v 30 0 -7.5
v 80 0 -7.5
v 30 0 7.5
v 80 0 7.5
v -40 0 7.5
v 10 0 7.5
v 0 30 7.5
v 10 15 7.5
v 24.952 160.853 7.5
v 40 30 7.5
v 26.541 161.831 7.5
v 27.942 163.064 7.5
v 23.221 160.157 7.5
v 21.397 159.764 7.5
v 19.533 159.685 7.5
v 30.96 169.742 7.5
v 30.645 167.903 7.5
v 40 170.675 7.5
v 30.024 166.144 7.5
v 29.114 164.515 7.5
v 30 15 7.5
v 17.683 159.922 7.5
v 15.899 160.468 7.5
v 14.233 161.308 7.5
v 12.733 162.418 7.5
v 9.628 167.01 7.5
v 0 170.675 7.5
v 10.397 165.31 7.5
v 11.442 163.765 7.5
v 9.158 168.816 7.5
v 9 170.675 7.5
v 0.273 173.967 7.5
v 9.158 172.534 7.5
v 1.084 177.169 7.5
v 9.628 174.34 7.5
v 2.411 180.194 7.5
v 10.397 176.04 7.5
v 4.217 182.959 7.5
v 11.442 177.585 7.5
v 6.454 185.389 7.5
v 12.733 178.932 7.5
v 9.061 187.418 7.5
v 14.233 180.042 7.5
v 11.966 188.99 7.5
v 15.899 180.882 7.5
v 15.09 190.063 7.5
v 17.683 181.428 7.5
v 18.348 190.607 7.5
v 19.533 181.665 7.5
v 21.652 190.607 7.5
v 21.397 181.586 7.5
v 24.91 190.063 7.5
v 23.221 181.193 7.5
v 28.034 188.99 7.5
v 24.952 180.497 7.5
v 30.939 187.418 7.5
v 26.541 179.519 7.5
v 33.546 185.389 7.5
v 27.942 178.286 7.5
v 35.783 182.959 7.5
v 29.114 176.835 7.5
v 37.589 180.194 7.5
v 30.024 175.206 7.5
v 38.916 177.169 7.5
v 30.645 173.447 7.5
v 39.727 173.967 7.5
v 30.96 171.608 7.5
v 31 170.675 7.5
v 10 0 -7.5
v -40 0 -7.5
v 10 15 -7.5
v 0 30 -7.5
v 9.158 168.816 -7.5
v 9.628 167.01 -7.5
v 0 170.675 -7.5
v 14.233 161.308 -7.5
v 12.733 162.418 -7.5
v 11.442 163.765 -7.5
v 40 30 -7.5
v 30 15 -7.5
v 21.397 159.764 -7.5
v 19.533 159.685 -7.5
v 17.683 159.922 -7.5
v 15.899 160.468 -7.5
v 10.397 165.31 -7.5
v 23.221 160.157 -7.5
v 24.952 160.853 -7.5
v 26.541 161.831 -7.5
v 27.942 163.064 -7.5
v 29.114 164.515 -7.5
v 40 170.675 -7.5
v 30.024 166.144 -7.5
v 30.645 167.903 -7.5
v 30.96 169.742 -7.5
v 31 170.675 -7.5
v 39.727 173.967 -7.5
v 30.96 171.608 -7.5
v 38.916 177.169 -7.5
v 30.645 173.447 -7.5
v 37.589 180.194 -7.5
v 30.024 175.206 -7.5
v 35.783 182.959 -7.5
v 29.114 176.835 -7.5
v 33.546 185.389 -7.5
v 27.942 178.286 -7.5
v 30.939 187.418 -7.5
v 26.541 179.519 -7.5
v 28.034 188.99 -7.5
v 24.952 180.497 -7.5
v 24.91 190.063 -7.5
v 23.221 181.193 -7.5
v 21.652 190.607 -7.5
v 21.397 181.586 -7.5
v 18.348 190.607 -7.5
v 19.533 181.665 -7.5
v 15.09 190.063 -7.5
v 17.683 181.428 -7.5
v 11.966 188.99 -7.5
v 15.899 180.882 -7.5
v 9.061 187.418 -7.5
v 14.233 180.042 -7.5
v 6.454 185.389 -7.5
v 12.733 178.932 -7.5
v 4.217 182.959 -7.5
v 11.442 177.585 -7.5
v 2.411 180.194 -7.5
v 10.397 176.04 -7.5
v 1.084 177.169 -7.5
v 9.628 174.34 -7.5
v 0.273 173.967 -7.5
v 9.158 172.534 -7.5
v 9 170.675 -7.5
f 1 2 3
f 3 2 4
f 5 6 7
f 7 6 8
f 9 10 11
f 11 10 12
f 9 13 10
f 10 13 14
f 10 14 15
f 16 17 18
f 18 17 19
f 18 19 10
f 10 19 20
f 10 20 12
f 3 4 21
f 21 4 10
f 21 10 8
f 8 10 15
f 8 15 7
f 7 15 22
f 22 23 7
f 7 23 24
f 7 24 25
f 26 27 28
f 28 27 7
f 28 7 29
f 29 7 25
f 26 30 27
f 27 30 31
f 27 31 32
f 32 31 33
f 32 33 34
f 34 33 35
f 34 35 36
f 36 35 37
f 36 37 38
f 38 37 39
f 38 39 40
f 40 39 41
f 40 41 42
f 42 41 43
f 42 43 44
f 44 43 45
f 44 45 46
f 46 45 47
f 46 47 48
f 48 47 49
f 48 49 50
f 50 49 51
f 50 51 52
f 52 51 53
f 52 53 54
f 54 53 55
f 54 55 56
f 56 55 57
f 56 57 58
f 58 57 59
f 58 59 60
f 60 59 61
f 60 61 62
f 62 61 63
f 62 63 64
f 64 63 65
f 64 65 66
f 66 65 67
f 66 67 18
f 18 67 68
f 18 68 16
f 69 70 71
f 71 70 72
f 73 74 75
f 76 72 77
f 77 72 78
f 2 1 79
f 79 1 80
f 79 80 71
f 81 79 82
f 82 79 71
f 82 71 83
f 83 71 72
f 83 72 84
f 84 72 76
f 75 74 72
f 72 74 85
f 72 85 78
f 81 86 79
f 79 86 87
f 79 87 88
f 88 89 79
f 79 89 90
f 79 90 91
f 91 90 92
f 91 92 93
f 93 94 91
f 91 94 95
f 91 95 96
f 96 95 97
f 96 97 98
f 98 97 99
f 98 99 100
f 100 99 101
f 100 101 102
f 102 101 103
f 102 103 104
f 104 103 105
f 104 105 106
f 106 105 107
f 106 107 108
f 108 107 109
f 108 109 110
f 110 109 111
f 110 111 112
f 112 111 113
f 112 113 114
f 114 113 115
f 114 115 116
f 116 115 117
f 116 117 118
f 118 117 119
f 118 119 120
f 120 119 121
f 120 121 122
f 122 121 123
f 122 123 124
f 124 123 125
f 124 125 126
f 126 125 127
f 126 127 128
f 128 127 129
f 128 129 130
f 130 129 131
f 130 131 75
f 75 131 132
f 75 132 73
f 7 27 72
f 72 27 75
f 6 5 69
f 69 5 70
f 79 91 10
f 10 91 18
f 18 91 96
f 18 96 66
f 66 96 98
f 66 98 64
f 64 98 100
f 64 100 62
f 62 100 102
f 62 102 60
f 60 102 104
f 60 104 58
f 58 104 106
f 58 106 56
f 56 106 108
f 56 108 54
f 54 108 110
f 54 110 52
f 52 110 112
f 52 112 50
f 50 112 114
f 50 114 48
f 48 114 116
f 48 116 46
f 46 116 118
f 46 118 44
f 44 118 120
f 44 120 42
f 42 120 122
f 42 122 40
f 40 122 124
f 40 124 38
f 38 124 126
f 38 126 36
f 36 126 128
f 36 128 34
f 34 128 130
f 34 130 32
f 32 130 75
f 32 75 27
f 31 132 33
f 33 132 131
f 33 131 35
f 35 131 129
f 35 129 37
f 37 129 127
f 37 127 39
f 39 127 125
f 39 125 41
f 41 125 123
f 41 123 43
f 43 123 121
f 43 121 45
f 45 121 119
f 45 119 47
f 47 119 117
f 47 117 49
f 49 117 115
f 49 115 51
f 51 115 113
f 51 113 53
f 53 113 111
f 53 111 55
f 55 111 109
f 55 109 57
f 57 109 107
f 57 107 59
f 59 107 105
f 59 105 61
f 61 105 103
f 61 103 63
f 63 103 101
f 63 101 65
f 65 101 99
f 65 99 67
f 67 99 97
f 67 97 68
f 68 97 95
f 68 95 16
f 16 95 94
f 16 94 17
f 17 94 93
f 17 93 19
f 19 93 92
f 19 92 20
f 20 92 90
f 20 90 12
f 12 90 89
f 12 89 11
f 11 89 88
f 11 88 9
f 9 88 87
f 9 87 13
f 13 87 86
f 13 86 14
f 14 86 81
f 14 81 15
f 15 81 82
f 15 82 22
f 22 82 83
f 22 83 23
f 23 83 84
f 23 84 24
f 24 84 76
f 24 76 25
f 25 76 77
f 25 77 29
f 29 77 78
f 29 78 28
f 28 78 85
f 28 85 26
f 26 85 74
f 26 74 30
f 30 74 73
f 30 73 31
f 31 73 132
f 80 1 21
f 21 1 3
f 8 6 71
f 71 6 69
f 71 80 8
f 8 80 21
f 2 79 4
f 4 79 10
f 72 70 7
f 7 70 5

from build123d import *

# Parameters (mm, degrees)
CROQUIS1_R              = 11
SALIENTE_EXTRUIR1_DEPTH = 7.5
CROQUIS2_W              = 20
CROQUIS2_H              = 30
CORTAR_EXTRUIR1_DEPTH   = 16
SALIENTE_EXTRUIR2_DEPTH = 15


with BuildPart() as part:
    # Croquis1 → Saliente-Extruir1 (new body, symmetric)
    with BuildSketch(Plane.XY):
        with BuildLine():
            Line((0, 0), (40, 0))
            Line((40, 0), (40, 170.675))
            ThreePointArc((40, 170.675), (20, 190.675), (0, 170.675))
            Line((0, 170.675), (0, 0))
        make_face()
        with Locations((20, 170.675)):
            Circle(CROQUIS1_R, mode=Mode.SUBTRACT)
    extrude(amount=SALIENTE_EXTRUIR1_DEPTH, both=True)

    # Croquis2 → Cortar-Extruir1 (cut, through all)
    with BuildSketch(Plane.XY.offset(7.5)):
        with Locations((20, 0)):
            Rectangle(CROQUIS2_W, CROQUIS2_H)
    extrude(amount=-CORTAR_EXTRUIR1_DEPTH, mode=Mode.SUBTRACT)

    # Croquis3 → Saliente-Extruir2 (add)
    with BuildSketch(Plane.XY.offset(7.5)):
        Polygon((40, 30), (80, 0), (40, 0), align=None)
        Polygon((0, 30), (0, 0), (-40, 0), align=None)
    extrude(amount=-SALIENTE_EXTRUIR2_DEPTH)


solid = part.part
